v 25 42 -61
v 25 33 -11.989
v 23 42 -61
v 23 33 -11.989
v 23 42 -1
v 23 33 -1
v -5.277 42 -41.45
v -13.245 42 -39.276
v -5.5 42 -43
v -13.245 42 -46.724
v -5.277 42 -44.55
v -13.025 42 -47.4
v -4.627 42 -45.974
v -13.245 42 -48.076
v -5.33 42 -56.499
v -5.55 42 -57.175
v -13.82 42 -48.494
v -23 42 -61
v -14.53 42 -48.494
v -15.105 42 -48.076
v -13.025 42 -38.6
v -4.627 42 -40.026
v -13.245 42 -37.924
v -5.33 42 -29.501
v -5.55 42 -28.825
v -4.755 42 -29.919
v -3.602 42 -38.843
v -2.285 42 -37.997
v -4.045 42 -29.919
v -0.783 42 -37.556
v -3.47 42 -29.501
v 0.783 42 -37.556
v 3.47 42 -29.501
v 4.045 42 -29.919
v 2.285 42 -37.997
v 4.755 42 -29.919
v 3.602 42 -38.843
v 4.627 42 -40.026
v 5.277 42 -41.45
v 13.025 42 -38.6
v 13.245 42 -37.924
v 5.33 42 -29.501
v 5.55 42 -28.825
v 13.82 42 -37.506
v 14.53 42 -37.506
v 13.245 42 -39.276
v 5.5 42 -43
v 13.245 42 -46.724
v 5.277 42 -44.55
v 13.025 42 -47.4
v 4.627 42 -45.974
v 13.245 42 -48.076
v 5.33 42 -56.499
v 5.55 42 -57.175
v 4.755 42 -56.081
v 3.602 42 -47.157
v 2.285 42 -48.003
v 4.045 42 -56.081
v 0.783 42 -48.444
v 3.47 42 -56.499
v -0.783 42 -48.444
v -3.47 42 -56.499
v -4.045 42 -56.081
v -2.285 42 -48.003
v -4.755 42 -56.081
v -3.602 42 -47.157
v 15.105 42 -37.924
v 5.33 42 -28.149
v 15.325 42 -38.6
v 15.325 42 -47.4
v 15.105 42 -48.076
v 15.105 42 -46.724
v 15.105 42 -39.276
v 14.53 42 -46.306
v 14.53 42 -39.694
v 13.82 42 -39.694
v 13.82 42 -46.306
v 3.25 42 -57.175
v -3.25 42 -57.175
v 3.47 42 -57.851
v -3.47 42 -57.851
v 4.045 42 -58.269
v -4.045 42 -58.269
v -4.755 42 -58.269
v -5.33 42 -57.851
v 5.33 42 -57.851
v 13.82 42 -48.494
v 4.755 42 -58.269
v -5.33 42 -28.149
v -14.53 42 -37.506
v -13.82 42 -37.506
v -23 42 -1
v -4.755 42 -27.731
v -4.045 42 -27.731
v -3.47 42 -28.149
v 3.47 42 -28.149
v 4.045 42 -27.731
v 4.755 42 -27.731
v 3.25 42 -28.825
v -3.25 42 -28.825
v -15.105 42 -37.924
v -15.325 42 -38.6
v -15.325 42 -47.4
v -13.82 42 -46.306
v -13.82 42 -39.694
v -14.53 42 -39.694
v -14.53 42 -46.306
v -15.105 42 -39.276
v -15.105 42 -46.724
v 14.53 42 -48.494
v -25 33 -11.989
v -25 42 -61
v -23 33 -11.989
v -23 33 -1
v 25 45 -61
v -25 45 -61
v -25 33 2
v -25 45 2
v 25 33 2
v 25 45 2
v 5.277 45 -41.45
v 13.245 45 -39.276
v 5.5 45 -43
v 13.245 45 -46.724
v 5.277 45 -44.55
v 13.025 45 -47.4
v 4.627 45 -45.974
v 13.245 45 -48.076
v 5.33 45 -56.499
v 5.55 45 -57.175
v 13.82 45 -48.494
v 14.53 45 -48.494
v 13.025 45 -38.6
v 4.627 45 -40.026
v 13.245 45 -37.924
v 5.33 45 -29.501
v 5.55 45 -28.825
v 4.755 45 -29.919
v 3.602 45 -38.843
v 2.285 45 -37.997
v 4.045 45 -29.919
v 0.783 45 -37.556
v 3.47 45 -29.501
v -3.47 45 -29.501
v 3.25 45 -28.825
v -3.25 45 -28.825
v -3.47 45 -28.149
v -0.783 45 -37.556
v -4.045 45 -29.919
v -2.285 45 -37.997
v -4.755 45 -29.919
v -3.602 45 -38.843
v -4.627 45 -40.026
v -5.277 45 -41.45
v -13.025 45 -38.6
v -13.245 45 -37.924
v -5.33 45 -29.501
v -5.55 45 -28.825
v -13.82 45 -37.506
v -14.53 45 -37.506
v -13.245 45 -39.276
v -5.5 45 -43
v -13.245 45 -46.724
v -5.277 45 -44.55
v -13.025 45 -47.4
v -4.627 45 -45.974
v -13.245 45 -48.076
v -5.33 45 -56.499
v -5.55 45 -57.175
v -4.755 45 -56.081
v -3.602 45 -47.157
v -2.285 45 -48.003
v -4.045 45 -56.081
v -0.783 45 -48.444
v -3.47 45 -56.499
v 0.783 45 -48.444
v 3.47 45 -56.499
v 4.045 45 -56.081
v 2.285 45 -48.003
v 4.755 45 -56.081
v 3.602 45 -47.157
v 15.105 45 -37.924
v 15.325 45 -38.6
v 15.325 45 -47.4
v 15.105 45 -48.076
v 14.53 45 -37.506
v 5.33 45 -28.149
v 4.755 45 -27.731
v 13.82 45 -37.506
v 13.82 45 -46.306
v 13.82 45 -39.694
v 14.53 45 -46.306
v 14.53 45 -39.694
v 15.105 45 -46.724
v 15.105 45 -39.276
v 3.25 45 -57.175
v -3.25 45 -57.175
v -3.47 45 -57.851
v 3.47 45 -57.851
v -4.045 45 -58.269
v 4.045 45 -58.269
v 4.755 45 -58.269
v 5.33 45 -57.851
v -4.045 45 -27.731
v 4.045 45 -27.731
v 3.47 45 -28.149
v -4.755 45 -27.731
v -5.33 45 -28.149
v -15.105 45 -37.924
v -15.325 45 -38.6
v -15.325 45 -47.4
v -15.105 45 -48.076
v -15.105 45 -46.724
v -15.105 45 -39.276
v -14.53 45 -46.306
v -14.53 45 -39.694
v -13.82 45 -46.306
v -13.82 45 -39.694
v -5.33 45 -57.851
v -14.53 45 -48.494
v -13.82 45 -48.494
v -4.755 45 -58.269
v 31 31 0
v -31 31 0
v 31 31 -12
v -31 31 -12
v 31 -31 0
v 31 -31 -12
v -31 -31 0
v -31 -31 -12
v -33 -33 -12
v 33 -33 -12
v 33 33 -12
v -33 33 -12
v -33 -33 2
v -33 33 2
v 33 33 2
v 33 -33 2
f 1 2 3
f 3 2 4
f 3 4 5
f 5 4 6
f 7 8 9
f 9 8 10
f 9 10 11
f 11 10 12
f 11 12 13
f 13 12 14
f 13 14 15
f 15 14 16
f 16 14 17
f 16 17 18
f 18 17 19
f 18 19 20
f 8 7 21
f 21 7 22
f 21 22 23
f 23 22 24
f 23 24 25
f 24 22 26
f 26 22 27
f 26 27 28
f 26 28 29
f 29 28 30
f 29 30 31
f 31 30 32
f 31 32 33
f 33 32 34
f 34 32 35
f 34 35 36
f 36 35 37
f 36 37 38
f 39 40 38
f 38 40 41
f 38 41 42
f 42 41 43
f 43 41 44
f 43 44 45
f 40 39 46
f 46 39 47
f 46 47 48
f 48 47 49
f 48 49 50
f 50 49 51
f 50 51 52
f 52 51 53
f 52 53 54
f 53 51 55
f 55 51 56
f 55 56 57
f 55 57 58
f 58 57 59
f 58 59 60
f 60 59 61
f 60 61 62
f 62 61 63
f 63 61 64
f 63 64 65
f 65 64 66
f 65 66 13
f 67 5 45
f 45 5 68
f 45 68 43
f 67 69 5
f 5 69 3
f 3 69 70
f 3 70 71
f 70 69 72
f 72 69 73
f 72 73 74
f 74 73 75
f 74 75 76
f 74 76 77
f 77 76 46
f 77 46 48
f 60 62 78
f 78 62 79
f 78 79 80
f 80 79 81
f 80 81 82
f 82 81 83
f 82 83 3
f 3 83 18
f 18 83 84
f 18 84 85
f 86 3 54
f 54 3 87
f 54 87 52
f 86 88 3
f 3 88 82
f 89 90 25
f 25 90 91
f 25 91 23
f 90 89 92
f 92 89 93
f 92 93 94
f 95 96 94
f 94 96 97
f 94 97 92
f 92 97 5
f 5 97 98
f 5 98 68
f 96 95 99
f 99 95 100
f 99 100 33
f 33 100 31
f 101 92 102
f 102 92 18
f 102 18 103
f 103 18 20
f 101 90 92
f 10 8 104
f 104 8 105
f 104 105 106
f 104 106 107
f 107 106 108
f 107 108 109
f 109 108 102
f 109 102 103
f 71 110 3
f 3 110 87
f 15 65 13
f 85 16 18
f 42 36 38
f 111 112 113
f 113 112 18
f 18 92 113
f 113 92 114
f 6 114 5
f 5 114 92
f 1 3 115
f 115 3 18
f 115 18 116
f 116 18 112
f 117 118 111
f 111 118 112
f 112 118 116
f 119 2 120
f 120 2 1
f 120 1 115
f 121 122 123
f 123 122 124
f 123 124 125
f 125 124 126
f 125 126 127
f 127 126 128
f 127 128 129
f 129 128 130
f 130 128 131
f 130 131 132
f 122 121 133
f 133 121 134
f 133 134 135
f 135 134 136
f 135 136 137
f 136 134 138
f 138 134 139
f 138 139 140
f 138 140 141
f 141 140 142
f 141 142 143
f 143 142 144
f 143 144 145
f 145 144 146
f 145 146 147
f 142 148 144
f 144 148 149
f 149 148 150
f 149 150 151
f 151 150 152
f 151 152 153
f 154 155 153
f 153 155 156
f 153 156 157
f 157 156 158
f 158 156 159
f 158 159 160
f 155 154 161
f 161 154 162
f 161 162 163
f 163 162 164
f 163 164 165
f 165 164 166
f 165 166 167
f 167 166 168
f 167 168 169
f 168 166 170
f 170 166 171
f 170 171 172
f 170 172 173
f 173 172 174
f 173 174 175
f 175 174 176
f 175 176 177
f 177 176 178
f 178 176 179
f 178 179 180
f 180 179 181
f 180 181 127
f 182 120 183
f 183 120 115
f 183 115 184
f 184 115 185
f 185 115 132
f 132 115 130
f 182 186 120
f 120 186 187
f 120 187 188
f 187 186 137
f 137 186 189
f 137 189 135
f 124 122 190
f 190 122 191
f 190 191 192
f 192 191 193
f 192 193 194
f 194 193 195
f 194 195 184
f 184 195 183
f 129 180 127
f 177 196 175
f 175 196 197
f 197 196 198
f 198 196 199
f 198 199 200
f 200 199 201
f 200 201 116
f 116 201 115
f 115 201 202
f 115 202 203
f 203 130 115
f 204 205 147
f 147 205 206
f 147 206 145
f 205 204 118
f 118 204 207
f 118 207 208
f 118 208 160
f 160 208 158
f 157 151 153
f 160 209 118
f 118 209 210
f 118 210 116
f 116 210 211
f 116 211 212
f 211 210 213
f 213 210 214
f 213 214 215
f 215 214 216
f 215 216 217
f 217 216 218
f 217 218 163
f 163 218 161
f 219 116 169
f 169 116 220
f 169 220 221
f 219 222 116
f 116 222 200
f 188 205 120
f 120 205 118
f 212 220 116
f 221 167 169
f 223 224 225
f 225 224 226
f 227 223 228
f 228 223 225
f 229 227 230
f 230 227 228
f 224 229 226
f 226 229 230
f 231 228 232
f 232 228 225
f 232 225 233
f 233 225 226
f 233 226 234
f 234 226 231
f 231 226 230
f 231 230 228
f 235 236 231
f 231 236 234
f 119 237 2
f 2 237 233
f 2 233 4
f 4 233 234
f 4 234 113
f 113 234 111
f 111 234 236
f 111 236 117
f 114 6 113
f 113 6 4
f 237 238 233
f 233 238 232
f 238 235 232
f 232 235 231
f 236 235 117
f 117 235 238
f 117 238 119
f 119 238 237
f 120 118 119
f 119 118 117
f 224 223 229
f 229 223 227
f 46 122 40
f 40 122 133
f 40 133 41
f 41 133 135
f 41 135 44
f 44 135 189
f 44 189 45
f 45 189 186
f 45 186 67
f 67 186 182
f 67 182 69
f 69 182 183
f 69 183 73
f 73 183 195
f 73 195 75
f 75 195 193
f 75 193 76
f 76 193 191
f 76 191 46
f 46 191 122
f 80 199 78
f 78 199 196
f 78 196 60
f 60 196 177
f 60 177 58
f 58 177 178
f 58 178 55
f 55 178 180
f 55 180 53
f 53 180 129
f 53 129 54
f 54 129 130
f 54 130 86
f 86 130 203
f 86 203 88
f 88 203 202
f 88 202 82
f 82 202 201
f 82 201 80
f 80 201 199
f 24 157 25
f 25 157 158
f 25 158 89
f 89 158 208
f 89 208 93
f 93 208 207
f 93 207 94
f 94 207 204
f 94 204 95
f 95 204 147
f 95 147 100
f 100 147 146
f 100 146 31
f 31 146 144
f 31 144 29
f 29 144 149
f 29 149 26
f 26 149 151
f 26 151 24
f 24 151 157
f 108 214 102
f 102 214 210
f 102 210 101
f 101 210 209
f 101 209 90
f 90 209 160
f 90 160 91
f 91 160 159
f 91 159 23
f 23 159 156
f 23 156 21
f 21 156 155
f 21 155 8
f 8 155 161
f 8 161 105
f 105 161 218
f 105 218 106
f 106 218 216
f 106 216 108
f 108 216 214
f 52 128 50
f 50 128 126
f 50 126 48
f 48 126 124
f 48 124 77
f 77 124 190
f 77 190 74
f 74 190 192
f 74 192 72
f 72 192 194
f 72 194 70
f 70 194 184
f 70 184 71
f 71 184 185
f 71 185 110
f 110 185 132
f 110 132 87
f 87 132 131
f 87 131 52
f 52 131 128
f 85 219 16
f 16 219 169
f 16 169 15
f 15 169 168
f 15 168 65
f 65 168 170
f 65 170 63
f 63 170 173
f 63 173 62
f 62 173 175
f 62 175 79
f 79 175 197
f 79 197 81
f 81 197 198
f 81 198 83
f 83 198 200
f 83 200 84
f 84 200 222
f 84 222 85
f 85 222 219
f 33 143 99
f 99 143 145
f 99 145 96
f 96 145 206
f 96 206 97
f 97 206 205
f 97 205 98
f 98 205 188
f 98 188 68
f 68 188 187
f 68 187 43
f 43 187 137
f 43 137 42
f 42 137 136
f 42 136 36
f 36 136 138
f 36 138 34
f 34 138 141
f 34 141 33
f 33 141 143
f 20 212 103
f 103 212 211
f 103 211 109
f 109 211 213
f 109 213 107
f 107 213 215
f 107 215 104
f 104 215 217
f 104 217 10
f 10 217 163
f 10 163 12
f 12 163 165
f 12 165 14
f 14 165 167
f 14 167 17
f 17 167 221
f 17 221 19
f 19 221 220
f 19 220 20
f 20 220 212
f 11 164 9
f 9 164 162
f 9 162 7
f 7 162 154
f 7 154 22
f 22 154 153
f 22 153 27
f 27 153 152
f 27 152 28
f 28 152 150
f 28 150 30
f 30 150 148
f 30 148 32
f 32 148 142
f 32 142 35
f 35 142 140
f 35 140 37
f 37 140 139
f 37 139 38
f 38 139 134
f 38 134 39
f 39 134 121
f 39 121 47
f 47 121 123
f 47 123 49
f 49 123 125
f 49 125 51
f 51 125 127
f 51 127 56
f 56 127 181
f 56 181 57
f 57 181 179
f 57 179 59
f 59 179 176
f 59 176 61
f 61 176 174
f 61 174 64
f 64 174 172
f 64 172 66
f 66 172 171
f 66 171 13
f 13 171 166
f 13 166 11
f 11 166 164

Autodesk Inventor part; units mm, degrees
ref_plane "YZ Plane" through (0, 0, 0) normal (1, 0, 0) x (0, 1, 0)
ref_plane "XZ Plane" through (0, 0, 0) normal (0, 1, 0) x (-1, 0, 0)
sketch "Sketch1" plane through (0, 0, 0) normal (0, 0, 1) x (1, 0, 0)
  line L0 (-31, -31) -> (31, -31)
  line L1 (31, -31) -> (31, 31)
  line L2 (31, 31) -> (-31, 31)
  line L3 (-31, 31) -> (-31, -31)
  line L4 (-31, -31) -> (31, 31) construction
  line L5 (31, -31) -> (-31, 31) construction
  line L6 (-33, 33) -> (33, 33)
  line L7 (33, 33) -> (33, -33)
  line L8 (33, -33) -> (-33, -33)
  line L9 (-33, -33) -> (-33, 33)
  point P0 (0, 0)
  dimension "d0" = 62
  dimension "d1" = 62
  dimension "d2" = 2
extrude "Extrusion1" add sketch "Sketch1" along normal blind 2 contours L3 L2 L1 L0 | L6 L7 L8 L9
extrude "Extrusion2" add sketch "Sketch1" against normal blind 12
sketch "Sketch2" plane through (-33, 33, 2) normal (0, 1, 0) x (1, 0, 0)
  line L0 (8, 3) -> (58, 3)
  line L1 (58, 3) -> (58, 0)
  line L2 (58, 0) -> (8, 0)
  line L3 (8, 0) -> (8, 3)
  line L4 (0, 14) -> (0, 0) projected
  line L5 (0, 14) -> (66, 14) projected
  point P0 (33, 2)
  dimension "d7" = 50
  dimension "d8" = 3
  dimension "d9" = 8
  dimension "d10" = 11
extrude "Extrusion3" add sketch "Sketch2" along normal blind 12
sketch "Sketch3" plane through (25, 33, -1) normal (0, 0, -1) x (-1, 0, 0)
  line L0 (50, 12) -> (0, 12) projected
  line L1 (50, 0) -> (50, 12) projected
  line L2 (0, 12) -> (50, 12)
  line L3 (50, 12) -> (50, 9)
  line L4 (50, 9) -> (0, 9)
  line L5 (0, 9) -> (0, 12)
  point P0 (25, -33)
  dimension "d13" = 3
extrude "Extrusion4" add sketch "Sketch3" along normal blind 60
sketch "Sketch8" plane through (-25, 33, -1) normal (-1, 0, 0) x (0, 0, 1)
  line L0 (0, 9) -> (-60, 9) projected
  line L1 (0, 9) -> (-60, 9)
  line L2 (-60, 9) -> (-60, 0)
  line L3 (-60, 0) -> (0, 0)
  line L4 (0, 0) -> (0, 9)
  line L5 (-60, 9) -> (-10.9892, 0)
  point P0 (1, -33)
  dimension "d43" = 9
extrude "Extrusion9" add sketch "Sketch8" against normal blind 2 contours L4 L3 L5 L0
ref_plane "Work Plane1" through (0, 33, 2) normal (1, 0, 0) x (0, 0, -1)
mirror "Mirror1" about plane through (0, 33, 2) normal (1, 0, 0) of "Extrusion9"
sketch "Sketch9" plane through (-33, 45, 2) normal (0, 1, 0) x (1, 0, 0)
  circle A0 centre (33, 45) radius 5.5
  circle A1 centre (33, 45) radius 6.45
  circle A2 centre (14.625, 45) radius 2.125
  circle A3 centre (51.375, 45) radius 2.125
  line L0 (14.279, 47.0966) -> (28.2925, 49.4093)
  line L1 (14.2406, 42.9101) -> (28.6201, 40.2652)
  line L2 (51.7217, 47.0965) -> (37.702, 49.4152)
  line L3 (51.7594, 42.9101) -> (37.3799, 40.2652)
  line L4 (33, 45) -> (51.375, 45)
  line L5 (33, 45) -> (14.625, 45)
  circle A4 centre (18.825, 40.6) radius 1.15
  circle A5 centre (47.175, 49.4) radius 1.15
  circle A6 centre (47.175, 45.2183) radius 1.15
  circle A7 centre (18.825, 49.4) radius 1.15
  circle A8 centre (28.6, 30.825) radius 1.15
  circle A9 centre (37.4, 30.825) radius 1.15
  circle A10 centre (32.7817, 59.175) radius 1.15
  circle A11 centre (28.6, 59.175) radius 1.15
  circle A12 centre (47.175, 40.6) radius 1.15
  circle A13 centre (47.175, 49.4) radius 1.15
  circle A14 centre (18.825, 44.7817) radius 1.15
  circle A15 centre (18.825, 40.6) radius 1.15
  circle A16 centre (37.4, 59.175) radius 1.15
  circle A17 centre (28.6, 59.175) radius 1.15
  circle A18 centre (33.2183, 30.825) radius 1.15
  circle A19 centre (37.4, 30.825) radius 1.15
  line L6 (8, 0) -> (58, 0) projected
  line L7 (8, 0) -> (8, 63) projected
  point P0 (33, 2)
  point P1 (7.2363, 31.7405)
  point P2 (37.6183, 45)
  dimension "d48" = 12.9
  dimension "d49" = 4.25
  dimension "d50" = 4.25
  dimension "d51" = 9.15
  dimension "d52" = 9.15
  dimension "d53" = 41
  dimension "d54" = 18.375
  dimension "d55" = 2.3
  dimension "d56" = 4.4
  dimension "d57" = 4.2
  dimension "d58" = 2.3
  dimension "d59" = 4.4
  dimension "d60" = 4.2
  dimension "d62" = 360
  dimension "d64" = 45
  dimension "d67" = 25
extrude "Extrusion10" cut sketch "Sketch9" against normal blind 10 contours A4 | A5 | A7 | A8 | A9 | A11 | A12 | A16
extrude "Extrusion11" cut sketch "Sketch9" against normal blind 10 contours L4 L5 A0 | A0 L5 L4
properties part number "pan_base_holder_third"
